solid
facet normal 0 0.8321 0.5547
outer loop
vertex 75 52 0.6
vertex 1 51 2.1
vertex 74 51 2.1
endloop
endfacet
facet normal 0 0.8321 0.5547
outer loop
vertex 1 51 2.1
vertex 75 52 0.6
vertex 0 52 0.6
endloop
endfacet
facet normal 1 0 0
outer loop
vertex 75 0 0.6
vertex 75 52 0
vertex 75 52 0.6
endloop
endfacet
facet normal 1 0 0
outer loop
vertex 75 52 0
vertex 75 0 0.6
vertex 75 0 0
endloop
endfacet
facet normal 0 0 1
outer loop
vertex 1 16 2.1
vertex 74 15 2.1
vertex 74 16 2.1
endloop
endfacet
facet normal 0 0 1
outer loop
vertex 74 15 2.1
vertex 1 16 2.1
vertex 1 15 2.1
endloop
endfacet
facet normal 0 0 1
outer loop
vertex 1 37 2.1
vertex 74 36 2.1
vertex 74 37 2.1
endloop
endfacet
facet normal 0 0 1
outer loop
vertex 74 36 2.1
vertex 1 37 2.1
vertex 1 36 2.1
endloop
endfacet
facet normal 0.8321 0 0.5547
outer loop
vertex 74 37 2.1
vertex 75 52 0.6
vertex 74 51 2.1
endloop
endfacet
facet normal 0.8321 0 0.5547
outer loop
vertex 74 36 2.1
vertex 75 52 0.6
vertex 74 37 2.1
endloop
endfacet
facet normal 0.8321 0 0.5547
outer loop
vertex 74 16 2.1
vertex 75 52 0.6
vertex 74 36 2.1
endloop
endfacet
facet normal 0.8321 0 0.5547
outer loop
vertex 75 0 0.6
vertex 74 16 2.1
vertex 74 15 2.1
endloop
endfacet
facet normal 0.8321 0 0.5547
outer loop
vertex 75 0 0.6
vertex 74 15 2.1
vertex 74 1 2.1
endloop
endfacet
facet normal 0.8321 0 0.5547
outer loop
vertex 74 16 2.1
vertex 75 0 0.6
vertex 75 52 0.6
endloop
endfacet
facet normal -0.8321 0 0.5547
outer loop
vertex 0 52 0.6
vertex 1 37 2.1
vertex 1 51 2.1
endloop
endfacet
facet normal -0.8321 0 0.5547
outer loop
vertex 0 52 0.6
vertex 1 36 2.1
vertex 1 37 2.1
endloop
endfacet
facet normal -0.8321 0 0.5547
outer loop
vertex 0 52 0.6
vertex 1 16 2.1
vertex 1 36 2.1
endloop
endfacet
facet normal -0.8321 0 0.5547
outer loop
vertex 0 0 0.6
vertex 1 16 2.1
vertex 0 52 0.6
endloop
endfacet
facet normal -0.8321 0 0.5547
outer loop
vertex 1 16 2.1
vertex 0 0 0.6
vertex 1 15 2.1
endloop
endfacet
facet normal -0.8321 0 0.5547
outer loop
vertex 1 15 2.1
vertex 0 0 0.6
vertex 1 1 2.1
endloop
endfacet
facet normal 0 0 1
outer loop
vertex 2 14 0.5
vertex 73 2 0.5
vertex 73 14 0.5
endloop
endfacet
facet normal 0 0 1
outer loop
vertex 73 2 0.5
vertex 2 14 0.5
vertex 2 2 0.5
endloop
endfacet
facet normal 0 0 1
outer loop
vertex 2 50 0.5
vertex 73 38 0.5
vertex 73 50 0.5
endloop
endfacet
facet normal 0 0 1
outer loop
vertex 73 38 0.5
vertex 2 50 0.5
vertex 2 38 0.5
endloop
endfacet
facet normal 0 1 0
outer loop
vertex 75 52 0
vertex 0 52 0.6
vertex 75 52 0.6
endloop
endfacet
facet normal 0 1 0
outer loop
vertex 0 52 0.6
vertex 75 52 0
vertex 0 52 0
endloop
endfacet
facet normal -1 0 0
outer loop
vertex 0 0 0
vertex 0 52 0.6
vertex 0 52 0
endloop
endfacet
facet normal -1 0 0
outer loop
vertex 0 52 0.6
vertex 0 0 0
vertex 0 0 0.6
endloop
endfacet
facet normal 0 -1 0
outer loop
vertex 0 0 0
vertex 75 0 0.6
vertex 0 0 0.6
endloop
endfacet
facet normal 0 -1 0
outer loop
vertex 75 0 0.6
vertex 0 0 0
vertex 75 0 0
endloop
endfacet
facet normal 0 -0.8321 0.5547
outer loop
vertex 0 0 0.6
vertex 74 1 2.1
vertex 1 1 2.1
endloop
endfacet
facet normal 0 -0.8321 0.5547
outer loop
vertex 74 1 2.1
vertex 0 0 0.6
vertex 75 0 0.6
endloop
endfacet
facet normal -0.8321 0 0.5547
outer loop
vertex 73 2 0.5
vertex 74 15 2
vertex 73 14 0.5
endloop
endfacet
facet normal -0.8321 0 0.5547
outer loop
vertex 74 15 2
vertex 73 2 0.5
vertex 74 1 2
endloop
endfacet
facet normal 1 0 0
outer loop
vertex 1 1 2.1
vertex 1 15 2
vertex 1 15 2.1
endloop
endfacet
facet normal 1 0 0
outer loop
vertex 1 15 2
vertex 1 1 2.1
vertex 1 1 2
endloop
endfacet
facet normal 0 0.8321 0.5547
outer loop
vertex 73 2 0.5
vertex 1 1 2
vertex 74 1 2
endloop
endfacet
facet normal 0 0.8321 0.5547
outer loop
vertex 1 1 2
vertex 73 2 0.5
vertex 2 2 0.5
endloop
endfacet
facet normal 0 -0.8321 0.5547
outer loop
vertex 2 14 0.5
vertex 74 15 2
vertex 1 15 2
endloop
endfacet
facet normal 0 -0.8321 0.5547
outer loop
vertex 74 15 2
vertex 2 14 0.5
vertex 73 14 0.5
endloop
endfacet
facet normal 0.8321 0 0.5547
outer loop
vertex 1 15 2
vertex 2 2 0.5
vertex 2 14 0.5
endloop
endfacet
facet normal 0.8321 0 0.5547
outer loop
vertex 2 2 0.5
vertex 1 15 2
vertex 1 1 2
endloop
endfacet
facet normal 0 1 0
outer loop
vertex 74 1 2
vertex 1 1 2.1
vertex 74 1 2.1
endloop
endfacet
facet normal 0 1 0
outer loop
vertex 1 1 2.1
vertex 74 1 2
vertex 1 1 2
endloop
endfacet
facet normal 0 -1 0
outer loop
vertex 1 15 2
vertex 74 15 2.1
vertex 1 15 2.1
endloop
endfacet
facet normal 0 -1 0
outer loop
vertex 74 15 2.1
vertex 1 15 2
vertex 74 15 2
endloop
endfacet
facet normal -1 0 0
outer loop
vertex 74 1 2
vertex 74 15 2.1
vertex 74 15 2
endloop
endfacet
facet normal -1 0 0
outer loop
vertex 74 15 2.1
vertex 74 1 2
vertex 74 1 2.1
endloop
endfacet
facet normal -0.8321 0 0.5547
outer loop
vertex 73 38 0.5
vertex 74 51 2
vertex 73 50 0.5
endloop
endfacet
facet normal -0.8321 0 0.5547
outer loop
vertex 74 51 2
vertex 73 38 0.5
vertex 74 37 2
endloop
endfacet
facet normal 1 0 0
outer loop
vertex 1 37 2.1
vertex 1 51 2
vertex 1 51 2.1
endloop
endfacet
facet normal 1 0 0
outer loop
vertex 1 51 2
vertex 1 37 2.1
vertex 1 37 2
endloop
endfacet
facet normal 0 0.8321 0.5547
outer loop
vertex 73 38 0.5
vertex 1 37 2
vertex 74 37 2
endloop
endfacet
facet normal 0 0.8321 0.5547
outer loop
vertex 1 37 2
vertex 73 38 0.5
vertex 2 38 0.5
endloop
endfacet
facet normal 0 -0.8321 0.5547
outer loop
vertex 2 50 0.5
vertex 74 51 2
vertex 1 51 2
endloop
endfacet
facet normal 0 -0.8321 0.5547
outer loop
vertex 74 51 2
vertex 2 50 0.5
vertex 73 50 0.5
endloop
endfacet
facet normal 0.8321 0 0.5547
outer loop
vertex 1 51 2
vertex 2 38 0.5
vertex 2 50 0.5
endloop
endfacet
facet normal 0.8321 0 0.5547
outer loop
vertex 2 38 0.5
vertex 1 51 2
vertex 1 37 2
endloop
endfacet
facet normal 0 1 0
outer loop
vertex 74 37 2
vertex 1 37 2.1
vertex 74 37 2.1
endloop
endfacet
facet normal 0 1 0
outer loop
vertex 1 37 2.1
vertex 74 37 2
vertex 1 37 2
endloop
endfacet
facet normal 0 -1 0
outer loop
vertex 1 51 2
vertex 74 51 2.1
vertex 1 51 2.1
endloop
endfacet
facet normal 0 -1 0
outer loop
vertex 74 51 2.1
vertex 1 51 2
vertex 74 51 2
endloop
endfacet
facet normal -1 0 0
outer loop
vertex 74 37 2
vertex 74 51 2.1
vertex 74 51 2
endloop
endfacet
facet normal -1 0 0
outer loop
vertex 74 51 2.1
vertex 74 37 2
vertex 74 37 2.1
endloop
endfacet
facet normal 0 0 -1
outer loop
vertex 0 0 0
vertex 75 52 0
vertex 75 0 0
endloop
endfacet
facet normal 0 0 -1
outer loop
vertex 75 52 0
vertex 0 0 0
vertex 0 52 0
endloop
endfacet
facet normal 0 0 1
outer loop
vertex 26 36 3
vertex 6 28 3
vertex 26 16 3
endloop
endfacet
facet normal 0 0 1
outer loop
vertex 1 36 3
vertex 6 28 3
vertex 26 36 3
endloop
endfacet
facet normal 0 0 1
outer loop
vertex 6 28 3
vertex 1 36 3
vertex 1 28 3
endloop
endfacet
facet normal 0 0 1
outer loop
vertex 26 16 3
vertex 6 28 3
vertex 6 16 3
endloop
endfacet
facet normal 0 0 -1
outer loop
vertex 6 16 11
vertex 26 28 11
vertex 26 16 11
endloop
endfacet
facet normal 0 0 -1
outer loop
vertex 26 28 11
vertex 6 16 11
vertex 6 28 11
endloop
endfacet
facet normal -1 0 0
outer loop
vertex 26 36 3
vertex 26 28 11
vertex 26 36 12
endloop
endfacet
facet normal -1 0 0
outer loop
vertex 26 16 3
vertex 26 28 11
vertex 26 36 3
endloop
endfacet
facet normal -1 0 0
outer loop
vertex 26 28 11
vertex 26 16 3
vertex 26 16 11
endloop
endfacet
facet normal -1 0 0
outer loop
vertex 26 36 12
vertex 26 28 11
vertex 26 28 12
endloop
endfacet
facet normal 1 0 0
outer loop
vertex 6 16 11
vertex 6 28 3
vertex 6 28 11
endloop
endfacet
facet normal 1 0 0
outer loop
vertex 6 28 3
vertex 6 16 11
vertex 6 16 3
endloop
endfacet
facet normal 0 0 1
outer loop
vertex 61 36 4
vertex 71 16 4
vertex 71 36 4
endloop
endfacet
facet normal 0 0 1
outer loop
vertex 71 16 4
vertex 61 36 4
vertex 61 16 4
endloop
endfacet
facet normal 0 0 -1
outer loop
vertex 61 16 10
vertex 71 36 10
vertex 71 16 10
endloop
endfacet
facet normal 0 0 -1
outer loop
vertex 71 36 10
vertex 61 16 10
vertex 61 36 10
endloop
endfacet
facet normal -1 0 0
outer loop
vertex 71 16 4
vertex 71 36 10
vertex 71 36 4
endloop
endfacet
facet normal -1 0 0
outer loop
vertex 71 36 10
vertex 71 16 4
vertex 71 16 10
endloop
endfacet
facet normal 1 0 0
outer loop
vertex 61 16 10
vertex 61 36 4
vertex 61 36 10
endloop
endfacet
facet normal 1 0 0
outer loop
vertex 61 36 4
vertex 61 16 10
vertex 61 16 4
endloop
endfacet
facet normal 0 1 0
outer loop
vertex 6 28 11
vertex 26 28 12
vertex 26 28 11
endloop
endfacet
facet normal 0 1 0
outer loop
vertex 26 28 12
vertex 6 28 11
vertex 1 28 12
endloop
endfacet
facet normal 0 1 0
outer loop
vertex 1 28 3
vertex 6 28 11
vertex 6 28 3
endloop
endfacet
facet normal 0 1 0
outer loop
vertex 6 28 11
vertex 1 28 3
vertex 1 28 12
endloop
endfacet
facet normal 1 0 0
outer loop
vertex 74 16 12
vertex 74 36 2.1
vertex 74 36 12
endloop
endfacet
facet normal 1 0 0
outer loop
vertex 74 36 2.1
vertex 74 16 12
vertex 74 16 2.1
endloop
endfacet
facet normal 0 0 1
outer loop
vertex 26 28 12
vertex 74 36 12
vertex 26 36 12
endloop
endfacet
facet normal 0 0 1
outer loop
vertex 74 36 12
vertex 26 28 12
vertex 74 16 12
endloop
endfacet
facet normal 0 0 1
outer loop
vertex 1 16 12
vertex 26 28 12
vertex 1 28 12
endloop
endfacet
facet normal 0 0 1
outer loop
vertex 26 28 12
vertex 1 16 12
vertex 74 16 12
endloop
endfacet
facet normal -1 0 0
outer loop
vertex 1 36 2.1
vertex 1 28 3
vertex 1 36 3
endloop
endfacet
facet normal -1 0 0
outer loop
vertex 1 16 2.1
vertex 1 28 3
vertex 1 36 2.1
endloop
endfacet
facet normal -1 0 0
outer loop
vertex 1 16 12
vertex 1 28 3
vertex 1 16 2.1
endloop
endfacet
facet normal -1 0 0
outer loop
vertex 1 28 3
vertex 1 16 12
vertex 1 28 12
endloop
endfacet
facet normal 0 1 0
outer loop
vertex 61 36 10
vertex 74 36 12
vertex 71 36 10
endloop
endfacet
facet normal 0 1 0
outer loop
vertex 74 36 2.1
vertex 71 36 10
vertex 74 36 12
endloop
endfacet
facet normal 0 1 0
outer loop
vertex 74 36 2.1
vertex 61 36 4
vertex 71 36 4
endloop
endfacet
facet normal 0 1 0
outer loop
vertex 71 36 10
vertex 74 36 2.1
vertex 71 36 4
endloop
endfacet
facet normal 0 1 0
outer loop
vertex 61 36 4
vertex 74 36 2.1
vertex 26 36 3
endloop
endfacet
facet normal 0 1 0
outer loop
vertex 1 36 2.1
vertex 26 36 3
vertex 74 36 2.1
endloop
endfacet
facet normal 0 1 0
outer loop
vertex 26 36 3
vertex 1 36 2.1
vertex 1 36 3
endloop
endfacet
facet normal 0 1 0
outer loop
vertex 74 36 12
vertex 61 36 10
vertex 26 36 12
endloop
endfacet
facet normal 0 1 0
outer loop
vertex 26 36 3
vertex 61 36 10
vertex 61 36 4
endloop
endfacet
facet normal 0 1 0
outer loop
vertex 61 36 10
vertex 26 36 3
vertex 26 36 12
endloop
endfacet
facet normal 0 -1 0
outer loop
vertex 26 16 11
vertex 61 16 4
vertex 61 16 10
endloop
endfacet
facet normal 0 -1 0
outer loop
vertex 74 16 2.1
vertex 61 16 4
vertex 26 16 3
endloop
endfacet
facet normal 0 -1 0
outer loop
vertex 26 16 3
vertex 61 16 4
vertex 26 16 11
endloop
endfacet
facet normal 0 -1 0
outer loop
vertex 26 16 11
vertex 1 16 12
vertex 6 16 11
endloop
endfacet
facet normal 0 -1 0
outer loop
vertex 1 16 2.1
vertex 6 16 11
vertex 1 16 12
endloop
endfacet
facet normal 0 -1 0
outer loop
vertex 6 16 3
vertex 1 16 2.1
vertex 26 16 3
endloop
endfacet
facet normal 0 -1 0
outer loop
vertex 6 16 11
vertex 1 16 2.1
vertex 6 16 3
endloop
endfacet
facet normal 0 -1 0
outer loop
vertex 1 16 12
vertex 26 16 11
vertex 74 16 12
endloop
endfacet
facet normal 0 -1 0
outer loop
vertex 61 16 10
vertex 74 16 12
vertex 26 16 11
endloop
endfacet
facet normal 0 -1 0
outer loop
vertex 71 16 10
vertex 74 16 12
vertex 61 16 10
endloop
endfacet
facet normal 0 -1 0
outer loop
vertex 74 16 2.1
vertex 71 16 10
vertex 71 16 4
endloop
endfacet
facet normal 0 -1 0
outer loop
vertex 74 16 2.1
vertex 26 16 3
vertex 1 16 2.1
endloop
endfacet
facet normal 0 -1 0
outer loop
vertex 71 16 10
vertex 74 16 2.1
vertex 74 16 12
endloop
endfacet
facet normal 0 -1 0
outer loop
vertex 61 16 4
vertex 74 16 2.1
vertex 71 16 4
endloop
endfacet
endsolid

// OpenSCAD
echo(version=version());
// Base Config
base_W = 75;
base_H = 52;
base_T = 0.5;
default_T = 2.0;
default_S = 12;
$fn = 60;

staple_base(base_T,base_W,base_H,default_S,default_T);

translate([1, 16, default_T]) {
    difference() {
        cube([base_W - 2, 20, 10]);
        rotate([90, 90, 0]) {
            translate([-9, 5, -25]) cube([8, 20, 30]);
            translate([-8, 60, -25]) cube([6, 10, 30]);
            translate([-13, -1, -25]) cube([12, 26, 13]);
        }
    }
}

module stapler_area(bt,bw,ds,dt) {
    hull() {
        translate([0, 0, dt - bt]) cube([bw - dt, ds + 2, 0.1]);
        translate([1, 1, 0]) cube([bw - dt * 2, ds, 0.1]);
    }
}

module staple_base(bt,bw,bh,ds,dt) {
    union() {
        // Base1(Bottom)
        cube([bw, bh, bt]);
        // Base2(Top)
        translate([0, 0, bt]) {
            difference() {
                // Base2_body
                hull() {
                    translate([1, 1, dt - bt]) cube([bw - 2, bh - 2, 0.1]);
                    translate([0, 0, 0]) cube([bw, bh, 0.1]);
                }
                // Base2_stapler_area1(Top)
                # translate([dt - 1, dt - 1, 0]) stapler_area(bt,bw,ds,dt);
                // Base2_stapler_area2(Bottom)
                # translate([dt - 1, bh - ds - dt - 1, 0]) stapler_area(bt,bw,ds,dt);
            }
        }
    }
}
